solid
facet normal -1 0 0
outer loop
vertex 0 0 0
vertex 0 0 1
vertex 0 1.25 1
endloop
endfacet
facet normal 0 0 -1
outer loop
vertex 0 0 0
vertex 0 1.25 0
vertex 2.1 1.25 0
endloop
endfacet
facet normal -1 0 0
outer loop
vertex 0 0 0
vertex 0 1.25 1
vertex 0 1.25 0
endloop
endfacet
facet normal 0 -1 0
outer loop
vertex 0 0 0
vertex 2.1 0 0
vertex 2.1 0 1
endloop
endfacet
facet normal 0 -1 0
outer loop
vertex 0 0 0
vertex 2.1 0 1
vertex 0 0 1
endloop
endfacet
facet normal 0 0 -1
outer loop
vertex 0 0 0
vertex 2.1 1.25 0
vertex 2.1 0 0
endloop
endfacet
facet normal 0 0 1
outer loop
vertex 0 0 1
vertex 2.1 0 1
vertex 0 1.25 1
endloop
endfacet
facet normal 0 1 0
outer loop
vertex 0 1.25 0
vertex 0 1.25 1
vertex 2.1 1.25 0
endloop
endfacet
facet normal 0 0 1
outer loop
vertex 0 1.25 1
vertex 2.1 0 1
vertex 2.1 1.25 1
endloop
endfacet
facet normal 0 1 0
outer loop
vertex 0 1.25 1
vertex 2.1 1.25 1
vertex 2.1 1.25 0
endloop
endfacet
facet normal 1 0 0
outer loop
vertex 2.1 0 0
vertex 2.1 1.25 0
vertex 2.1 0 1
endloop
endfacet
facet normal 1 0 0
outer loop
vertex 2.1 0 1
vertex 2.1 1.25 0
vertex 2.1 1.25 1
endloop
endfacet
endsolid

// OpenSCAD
/* Warning, this is a very basic generator with a lot of approximation 
input data : [SC70, BJX, 2.10x1.25mm, 3, , E, C04-00060E]
generated by com.zoubworld.electronics.cad.model3d.Basic
Date : Sun Feb 15 10:50:48 CET 2026
*/

//body
color("black")
translate([0,0,0])
cube([2.1,1.25,1.0], center=false);
